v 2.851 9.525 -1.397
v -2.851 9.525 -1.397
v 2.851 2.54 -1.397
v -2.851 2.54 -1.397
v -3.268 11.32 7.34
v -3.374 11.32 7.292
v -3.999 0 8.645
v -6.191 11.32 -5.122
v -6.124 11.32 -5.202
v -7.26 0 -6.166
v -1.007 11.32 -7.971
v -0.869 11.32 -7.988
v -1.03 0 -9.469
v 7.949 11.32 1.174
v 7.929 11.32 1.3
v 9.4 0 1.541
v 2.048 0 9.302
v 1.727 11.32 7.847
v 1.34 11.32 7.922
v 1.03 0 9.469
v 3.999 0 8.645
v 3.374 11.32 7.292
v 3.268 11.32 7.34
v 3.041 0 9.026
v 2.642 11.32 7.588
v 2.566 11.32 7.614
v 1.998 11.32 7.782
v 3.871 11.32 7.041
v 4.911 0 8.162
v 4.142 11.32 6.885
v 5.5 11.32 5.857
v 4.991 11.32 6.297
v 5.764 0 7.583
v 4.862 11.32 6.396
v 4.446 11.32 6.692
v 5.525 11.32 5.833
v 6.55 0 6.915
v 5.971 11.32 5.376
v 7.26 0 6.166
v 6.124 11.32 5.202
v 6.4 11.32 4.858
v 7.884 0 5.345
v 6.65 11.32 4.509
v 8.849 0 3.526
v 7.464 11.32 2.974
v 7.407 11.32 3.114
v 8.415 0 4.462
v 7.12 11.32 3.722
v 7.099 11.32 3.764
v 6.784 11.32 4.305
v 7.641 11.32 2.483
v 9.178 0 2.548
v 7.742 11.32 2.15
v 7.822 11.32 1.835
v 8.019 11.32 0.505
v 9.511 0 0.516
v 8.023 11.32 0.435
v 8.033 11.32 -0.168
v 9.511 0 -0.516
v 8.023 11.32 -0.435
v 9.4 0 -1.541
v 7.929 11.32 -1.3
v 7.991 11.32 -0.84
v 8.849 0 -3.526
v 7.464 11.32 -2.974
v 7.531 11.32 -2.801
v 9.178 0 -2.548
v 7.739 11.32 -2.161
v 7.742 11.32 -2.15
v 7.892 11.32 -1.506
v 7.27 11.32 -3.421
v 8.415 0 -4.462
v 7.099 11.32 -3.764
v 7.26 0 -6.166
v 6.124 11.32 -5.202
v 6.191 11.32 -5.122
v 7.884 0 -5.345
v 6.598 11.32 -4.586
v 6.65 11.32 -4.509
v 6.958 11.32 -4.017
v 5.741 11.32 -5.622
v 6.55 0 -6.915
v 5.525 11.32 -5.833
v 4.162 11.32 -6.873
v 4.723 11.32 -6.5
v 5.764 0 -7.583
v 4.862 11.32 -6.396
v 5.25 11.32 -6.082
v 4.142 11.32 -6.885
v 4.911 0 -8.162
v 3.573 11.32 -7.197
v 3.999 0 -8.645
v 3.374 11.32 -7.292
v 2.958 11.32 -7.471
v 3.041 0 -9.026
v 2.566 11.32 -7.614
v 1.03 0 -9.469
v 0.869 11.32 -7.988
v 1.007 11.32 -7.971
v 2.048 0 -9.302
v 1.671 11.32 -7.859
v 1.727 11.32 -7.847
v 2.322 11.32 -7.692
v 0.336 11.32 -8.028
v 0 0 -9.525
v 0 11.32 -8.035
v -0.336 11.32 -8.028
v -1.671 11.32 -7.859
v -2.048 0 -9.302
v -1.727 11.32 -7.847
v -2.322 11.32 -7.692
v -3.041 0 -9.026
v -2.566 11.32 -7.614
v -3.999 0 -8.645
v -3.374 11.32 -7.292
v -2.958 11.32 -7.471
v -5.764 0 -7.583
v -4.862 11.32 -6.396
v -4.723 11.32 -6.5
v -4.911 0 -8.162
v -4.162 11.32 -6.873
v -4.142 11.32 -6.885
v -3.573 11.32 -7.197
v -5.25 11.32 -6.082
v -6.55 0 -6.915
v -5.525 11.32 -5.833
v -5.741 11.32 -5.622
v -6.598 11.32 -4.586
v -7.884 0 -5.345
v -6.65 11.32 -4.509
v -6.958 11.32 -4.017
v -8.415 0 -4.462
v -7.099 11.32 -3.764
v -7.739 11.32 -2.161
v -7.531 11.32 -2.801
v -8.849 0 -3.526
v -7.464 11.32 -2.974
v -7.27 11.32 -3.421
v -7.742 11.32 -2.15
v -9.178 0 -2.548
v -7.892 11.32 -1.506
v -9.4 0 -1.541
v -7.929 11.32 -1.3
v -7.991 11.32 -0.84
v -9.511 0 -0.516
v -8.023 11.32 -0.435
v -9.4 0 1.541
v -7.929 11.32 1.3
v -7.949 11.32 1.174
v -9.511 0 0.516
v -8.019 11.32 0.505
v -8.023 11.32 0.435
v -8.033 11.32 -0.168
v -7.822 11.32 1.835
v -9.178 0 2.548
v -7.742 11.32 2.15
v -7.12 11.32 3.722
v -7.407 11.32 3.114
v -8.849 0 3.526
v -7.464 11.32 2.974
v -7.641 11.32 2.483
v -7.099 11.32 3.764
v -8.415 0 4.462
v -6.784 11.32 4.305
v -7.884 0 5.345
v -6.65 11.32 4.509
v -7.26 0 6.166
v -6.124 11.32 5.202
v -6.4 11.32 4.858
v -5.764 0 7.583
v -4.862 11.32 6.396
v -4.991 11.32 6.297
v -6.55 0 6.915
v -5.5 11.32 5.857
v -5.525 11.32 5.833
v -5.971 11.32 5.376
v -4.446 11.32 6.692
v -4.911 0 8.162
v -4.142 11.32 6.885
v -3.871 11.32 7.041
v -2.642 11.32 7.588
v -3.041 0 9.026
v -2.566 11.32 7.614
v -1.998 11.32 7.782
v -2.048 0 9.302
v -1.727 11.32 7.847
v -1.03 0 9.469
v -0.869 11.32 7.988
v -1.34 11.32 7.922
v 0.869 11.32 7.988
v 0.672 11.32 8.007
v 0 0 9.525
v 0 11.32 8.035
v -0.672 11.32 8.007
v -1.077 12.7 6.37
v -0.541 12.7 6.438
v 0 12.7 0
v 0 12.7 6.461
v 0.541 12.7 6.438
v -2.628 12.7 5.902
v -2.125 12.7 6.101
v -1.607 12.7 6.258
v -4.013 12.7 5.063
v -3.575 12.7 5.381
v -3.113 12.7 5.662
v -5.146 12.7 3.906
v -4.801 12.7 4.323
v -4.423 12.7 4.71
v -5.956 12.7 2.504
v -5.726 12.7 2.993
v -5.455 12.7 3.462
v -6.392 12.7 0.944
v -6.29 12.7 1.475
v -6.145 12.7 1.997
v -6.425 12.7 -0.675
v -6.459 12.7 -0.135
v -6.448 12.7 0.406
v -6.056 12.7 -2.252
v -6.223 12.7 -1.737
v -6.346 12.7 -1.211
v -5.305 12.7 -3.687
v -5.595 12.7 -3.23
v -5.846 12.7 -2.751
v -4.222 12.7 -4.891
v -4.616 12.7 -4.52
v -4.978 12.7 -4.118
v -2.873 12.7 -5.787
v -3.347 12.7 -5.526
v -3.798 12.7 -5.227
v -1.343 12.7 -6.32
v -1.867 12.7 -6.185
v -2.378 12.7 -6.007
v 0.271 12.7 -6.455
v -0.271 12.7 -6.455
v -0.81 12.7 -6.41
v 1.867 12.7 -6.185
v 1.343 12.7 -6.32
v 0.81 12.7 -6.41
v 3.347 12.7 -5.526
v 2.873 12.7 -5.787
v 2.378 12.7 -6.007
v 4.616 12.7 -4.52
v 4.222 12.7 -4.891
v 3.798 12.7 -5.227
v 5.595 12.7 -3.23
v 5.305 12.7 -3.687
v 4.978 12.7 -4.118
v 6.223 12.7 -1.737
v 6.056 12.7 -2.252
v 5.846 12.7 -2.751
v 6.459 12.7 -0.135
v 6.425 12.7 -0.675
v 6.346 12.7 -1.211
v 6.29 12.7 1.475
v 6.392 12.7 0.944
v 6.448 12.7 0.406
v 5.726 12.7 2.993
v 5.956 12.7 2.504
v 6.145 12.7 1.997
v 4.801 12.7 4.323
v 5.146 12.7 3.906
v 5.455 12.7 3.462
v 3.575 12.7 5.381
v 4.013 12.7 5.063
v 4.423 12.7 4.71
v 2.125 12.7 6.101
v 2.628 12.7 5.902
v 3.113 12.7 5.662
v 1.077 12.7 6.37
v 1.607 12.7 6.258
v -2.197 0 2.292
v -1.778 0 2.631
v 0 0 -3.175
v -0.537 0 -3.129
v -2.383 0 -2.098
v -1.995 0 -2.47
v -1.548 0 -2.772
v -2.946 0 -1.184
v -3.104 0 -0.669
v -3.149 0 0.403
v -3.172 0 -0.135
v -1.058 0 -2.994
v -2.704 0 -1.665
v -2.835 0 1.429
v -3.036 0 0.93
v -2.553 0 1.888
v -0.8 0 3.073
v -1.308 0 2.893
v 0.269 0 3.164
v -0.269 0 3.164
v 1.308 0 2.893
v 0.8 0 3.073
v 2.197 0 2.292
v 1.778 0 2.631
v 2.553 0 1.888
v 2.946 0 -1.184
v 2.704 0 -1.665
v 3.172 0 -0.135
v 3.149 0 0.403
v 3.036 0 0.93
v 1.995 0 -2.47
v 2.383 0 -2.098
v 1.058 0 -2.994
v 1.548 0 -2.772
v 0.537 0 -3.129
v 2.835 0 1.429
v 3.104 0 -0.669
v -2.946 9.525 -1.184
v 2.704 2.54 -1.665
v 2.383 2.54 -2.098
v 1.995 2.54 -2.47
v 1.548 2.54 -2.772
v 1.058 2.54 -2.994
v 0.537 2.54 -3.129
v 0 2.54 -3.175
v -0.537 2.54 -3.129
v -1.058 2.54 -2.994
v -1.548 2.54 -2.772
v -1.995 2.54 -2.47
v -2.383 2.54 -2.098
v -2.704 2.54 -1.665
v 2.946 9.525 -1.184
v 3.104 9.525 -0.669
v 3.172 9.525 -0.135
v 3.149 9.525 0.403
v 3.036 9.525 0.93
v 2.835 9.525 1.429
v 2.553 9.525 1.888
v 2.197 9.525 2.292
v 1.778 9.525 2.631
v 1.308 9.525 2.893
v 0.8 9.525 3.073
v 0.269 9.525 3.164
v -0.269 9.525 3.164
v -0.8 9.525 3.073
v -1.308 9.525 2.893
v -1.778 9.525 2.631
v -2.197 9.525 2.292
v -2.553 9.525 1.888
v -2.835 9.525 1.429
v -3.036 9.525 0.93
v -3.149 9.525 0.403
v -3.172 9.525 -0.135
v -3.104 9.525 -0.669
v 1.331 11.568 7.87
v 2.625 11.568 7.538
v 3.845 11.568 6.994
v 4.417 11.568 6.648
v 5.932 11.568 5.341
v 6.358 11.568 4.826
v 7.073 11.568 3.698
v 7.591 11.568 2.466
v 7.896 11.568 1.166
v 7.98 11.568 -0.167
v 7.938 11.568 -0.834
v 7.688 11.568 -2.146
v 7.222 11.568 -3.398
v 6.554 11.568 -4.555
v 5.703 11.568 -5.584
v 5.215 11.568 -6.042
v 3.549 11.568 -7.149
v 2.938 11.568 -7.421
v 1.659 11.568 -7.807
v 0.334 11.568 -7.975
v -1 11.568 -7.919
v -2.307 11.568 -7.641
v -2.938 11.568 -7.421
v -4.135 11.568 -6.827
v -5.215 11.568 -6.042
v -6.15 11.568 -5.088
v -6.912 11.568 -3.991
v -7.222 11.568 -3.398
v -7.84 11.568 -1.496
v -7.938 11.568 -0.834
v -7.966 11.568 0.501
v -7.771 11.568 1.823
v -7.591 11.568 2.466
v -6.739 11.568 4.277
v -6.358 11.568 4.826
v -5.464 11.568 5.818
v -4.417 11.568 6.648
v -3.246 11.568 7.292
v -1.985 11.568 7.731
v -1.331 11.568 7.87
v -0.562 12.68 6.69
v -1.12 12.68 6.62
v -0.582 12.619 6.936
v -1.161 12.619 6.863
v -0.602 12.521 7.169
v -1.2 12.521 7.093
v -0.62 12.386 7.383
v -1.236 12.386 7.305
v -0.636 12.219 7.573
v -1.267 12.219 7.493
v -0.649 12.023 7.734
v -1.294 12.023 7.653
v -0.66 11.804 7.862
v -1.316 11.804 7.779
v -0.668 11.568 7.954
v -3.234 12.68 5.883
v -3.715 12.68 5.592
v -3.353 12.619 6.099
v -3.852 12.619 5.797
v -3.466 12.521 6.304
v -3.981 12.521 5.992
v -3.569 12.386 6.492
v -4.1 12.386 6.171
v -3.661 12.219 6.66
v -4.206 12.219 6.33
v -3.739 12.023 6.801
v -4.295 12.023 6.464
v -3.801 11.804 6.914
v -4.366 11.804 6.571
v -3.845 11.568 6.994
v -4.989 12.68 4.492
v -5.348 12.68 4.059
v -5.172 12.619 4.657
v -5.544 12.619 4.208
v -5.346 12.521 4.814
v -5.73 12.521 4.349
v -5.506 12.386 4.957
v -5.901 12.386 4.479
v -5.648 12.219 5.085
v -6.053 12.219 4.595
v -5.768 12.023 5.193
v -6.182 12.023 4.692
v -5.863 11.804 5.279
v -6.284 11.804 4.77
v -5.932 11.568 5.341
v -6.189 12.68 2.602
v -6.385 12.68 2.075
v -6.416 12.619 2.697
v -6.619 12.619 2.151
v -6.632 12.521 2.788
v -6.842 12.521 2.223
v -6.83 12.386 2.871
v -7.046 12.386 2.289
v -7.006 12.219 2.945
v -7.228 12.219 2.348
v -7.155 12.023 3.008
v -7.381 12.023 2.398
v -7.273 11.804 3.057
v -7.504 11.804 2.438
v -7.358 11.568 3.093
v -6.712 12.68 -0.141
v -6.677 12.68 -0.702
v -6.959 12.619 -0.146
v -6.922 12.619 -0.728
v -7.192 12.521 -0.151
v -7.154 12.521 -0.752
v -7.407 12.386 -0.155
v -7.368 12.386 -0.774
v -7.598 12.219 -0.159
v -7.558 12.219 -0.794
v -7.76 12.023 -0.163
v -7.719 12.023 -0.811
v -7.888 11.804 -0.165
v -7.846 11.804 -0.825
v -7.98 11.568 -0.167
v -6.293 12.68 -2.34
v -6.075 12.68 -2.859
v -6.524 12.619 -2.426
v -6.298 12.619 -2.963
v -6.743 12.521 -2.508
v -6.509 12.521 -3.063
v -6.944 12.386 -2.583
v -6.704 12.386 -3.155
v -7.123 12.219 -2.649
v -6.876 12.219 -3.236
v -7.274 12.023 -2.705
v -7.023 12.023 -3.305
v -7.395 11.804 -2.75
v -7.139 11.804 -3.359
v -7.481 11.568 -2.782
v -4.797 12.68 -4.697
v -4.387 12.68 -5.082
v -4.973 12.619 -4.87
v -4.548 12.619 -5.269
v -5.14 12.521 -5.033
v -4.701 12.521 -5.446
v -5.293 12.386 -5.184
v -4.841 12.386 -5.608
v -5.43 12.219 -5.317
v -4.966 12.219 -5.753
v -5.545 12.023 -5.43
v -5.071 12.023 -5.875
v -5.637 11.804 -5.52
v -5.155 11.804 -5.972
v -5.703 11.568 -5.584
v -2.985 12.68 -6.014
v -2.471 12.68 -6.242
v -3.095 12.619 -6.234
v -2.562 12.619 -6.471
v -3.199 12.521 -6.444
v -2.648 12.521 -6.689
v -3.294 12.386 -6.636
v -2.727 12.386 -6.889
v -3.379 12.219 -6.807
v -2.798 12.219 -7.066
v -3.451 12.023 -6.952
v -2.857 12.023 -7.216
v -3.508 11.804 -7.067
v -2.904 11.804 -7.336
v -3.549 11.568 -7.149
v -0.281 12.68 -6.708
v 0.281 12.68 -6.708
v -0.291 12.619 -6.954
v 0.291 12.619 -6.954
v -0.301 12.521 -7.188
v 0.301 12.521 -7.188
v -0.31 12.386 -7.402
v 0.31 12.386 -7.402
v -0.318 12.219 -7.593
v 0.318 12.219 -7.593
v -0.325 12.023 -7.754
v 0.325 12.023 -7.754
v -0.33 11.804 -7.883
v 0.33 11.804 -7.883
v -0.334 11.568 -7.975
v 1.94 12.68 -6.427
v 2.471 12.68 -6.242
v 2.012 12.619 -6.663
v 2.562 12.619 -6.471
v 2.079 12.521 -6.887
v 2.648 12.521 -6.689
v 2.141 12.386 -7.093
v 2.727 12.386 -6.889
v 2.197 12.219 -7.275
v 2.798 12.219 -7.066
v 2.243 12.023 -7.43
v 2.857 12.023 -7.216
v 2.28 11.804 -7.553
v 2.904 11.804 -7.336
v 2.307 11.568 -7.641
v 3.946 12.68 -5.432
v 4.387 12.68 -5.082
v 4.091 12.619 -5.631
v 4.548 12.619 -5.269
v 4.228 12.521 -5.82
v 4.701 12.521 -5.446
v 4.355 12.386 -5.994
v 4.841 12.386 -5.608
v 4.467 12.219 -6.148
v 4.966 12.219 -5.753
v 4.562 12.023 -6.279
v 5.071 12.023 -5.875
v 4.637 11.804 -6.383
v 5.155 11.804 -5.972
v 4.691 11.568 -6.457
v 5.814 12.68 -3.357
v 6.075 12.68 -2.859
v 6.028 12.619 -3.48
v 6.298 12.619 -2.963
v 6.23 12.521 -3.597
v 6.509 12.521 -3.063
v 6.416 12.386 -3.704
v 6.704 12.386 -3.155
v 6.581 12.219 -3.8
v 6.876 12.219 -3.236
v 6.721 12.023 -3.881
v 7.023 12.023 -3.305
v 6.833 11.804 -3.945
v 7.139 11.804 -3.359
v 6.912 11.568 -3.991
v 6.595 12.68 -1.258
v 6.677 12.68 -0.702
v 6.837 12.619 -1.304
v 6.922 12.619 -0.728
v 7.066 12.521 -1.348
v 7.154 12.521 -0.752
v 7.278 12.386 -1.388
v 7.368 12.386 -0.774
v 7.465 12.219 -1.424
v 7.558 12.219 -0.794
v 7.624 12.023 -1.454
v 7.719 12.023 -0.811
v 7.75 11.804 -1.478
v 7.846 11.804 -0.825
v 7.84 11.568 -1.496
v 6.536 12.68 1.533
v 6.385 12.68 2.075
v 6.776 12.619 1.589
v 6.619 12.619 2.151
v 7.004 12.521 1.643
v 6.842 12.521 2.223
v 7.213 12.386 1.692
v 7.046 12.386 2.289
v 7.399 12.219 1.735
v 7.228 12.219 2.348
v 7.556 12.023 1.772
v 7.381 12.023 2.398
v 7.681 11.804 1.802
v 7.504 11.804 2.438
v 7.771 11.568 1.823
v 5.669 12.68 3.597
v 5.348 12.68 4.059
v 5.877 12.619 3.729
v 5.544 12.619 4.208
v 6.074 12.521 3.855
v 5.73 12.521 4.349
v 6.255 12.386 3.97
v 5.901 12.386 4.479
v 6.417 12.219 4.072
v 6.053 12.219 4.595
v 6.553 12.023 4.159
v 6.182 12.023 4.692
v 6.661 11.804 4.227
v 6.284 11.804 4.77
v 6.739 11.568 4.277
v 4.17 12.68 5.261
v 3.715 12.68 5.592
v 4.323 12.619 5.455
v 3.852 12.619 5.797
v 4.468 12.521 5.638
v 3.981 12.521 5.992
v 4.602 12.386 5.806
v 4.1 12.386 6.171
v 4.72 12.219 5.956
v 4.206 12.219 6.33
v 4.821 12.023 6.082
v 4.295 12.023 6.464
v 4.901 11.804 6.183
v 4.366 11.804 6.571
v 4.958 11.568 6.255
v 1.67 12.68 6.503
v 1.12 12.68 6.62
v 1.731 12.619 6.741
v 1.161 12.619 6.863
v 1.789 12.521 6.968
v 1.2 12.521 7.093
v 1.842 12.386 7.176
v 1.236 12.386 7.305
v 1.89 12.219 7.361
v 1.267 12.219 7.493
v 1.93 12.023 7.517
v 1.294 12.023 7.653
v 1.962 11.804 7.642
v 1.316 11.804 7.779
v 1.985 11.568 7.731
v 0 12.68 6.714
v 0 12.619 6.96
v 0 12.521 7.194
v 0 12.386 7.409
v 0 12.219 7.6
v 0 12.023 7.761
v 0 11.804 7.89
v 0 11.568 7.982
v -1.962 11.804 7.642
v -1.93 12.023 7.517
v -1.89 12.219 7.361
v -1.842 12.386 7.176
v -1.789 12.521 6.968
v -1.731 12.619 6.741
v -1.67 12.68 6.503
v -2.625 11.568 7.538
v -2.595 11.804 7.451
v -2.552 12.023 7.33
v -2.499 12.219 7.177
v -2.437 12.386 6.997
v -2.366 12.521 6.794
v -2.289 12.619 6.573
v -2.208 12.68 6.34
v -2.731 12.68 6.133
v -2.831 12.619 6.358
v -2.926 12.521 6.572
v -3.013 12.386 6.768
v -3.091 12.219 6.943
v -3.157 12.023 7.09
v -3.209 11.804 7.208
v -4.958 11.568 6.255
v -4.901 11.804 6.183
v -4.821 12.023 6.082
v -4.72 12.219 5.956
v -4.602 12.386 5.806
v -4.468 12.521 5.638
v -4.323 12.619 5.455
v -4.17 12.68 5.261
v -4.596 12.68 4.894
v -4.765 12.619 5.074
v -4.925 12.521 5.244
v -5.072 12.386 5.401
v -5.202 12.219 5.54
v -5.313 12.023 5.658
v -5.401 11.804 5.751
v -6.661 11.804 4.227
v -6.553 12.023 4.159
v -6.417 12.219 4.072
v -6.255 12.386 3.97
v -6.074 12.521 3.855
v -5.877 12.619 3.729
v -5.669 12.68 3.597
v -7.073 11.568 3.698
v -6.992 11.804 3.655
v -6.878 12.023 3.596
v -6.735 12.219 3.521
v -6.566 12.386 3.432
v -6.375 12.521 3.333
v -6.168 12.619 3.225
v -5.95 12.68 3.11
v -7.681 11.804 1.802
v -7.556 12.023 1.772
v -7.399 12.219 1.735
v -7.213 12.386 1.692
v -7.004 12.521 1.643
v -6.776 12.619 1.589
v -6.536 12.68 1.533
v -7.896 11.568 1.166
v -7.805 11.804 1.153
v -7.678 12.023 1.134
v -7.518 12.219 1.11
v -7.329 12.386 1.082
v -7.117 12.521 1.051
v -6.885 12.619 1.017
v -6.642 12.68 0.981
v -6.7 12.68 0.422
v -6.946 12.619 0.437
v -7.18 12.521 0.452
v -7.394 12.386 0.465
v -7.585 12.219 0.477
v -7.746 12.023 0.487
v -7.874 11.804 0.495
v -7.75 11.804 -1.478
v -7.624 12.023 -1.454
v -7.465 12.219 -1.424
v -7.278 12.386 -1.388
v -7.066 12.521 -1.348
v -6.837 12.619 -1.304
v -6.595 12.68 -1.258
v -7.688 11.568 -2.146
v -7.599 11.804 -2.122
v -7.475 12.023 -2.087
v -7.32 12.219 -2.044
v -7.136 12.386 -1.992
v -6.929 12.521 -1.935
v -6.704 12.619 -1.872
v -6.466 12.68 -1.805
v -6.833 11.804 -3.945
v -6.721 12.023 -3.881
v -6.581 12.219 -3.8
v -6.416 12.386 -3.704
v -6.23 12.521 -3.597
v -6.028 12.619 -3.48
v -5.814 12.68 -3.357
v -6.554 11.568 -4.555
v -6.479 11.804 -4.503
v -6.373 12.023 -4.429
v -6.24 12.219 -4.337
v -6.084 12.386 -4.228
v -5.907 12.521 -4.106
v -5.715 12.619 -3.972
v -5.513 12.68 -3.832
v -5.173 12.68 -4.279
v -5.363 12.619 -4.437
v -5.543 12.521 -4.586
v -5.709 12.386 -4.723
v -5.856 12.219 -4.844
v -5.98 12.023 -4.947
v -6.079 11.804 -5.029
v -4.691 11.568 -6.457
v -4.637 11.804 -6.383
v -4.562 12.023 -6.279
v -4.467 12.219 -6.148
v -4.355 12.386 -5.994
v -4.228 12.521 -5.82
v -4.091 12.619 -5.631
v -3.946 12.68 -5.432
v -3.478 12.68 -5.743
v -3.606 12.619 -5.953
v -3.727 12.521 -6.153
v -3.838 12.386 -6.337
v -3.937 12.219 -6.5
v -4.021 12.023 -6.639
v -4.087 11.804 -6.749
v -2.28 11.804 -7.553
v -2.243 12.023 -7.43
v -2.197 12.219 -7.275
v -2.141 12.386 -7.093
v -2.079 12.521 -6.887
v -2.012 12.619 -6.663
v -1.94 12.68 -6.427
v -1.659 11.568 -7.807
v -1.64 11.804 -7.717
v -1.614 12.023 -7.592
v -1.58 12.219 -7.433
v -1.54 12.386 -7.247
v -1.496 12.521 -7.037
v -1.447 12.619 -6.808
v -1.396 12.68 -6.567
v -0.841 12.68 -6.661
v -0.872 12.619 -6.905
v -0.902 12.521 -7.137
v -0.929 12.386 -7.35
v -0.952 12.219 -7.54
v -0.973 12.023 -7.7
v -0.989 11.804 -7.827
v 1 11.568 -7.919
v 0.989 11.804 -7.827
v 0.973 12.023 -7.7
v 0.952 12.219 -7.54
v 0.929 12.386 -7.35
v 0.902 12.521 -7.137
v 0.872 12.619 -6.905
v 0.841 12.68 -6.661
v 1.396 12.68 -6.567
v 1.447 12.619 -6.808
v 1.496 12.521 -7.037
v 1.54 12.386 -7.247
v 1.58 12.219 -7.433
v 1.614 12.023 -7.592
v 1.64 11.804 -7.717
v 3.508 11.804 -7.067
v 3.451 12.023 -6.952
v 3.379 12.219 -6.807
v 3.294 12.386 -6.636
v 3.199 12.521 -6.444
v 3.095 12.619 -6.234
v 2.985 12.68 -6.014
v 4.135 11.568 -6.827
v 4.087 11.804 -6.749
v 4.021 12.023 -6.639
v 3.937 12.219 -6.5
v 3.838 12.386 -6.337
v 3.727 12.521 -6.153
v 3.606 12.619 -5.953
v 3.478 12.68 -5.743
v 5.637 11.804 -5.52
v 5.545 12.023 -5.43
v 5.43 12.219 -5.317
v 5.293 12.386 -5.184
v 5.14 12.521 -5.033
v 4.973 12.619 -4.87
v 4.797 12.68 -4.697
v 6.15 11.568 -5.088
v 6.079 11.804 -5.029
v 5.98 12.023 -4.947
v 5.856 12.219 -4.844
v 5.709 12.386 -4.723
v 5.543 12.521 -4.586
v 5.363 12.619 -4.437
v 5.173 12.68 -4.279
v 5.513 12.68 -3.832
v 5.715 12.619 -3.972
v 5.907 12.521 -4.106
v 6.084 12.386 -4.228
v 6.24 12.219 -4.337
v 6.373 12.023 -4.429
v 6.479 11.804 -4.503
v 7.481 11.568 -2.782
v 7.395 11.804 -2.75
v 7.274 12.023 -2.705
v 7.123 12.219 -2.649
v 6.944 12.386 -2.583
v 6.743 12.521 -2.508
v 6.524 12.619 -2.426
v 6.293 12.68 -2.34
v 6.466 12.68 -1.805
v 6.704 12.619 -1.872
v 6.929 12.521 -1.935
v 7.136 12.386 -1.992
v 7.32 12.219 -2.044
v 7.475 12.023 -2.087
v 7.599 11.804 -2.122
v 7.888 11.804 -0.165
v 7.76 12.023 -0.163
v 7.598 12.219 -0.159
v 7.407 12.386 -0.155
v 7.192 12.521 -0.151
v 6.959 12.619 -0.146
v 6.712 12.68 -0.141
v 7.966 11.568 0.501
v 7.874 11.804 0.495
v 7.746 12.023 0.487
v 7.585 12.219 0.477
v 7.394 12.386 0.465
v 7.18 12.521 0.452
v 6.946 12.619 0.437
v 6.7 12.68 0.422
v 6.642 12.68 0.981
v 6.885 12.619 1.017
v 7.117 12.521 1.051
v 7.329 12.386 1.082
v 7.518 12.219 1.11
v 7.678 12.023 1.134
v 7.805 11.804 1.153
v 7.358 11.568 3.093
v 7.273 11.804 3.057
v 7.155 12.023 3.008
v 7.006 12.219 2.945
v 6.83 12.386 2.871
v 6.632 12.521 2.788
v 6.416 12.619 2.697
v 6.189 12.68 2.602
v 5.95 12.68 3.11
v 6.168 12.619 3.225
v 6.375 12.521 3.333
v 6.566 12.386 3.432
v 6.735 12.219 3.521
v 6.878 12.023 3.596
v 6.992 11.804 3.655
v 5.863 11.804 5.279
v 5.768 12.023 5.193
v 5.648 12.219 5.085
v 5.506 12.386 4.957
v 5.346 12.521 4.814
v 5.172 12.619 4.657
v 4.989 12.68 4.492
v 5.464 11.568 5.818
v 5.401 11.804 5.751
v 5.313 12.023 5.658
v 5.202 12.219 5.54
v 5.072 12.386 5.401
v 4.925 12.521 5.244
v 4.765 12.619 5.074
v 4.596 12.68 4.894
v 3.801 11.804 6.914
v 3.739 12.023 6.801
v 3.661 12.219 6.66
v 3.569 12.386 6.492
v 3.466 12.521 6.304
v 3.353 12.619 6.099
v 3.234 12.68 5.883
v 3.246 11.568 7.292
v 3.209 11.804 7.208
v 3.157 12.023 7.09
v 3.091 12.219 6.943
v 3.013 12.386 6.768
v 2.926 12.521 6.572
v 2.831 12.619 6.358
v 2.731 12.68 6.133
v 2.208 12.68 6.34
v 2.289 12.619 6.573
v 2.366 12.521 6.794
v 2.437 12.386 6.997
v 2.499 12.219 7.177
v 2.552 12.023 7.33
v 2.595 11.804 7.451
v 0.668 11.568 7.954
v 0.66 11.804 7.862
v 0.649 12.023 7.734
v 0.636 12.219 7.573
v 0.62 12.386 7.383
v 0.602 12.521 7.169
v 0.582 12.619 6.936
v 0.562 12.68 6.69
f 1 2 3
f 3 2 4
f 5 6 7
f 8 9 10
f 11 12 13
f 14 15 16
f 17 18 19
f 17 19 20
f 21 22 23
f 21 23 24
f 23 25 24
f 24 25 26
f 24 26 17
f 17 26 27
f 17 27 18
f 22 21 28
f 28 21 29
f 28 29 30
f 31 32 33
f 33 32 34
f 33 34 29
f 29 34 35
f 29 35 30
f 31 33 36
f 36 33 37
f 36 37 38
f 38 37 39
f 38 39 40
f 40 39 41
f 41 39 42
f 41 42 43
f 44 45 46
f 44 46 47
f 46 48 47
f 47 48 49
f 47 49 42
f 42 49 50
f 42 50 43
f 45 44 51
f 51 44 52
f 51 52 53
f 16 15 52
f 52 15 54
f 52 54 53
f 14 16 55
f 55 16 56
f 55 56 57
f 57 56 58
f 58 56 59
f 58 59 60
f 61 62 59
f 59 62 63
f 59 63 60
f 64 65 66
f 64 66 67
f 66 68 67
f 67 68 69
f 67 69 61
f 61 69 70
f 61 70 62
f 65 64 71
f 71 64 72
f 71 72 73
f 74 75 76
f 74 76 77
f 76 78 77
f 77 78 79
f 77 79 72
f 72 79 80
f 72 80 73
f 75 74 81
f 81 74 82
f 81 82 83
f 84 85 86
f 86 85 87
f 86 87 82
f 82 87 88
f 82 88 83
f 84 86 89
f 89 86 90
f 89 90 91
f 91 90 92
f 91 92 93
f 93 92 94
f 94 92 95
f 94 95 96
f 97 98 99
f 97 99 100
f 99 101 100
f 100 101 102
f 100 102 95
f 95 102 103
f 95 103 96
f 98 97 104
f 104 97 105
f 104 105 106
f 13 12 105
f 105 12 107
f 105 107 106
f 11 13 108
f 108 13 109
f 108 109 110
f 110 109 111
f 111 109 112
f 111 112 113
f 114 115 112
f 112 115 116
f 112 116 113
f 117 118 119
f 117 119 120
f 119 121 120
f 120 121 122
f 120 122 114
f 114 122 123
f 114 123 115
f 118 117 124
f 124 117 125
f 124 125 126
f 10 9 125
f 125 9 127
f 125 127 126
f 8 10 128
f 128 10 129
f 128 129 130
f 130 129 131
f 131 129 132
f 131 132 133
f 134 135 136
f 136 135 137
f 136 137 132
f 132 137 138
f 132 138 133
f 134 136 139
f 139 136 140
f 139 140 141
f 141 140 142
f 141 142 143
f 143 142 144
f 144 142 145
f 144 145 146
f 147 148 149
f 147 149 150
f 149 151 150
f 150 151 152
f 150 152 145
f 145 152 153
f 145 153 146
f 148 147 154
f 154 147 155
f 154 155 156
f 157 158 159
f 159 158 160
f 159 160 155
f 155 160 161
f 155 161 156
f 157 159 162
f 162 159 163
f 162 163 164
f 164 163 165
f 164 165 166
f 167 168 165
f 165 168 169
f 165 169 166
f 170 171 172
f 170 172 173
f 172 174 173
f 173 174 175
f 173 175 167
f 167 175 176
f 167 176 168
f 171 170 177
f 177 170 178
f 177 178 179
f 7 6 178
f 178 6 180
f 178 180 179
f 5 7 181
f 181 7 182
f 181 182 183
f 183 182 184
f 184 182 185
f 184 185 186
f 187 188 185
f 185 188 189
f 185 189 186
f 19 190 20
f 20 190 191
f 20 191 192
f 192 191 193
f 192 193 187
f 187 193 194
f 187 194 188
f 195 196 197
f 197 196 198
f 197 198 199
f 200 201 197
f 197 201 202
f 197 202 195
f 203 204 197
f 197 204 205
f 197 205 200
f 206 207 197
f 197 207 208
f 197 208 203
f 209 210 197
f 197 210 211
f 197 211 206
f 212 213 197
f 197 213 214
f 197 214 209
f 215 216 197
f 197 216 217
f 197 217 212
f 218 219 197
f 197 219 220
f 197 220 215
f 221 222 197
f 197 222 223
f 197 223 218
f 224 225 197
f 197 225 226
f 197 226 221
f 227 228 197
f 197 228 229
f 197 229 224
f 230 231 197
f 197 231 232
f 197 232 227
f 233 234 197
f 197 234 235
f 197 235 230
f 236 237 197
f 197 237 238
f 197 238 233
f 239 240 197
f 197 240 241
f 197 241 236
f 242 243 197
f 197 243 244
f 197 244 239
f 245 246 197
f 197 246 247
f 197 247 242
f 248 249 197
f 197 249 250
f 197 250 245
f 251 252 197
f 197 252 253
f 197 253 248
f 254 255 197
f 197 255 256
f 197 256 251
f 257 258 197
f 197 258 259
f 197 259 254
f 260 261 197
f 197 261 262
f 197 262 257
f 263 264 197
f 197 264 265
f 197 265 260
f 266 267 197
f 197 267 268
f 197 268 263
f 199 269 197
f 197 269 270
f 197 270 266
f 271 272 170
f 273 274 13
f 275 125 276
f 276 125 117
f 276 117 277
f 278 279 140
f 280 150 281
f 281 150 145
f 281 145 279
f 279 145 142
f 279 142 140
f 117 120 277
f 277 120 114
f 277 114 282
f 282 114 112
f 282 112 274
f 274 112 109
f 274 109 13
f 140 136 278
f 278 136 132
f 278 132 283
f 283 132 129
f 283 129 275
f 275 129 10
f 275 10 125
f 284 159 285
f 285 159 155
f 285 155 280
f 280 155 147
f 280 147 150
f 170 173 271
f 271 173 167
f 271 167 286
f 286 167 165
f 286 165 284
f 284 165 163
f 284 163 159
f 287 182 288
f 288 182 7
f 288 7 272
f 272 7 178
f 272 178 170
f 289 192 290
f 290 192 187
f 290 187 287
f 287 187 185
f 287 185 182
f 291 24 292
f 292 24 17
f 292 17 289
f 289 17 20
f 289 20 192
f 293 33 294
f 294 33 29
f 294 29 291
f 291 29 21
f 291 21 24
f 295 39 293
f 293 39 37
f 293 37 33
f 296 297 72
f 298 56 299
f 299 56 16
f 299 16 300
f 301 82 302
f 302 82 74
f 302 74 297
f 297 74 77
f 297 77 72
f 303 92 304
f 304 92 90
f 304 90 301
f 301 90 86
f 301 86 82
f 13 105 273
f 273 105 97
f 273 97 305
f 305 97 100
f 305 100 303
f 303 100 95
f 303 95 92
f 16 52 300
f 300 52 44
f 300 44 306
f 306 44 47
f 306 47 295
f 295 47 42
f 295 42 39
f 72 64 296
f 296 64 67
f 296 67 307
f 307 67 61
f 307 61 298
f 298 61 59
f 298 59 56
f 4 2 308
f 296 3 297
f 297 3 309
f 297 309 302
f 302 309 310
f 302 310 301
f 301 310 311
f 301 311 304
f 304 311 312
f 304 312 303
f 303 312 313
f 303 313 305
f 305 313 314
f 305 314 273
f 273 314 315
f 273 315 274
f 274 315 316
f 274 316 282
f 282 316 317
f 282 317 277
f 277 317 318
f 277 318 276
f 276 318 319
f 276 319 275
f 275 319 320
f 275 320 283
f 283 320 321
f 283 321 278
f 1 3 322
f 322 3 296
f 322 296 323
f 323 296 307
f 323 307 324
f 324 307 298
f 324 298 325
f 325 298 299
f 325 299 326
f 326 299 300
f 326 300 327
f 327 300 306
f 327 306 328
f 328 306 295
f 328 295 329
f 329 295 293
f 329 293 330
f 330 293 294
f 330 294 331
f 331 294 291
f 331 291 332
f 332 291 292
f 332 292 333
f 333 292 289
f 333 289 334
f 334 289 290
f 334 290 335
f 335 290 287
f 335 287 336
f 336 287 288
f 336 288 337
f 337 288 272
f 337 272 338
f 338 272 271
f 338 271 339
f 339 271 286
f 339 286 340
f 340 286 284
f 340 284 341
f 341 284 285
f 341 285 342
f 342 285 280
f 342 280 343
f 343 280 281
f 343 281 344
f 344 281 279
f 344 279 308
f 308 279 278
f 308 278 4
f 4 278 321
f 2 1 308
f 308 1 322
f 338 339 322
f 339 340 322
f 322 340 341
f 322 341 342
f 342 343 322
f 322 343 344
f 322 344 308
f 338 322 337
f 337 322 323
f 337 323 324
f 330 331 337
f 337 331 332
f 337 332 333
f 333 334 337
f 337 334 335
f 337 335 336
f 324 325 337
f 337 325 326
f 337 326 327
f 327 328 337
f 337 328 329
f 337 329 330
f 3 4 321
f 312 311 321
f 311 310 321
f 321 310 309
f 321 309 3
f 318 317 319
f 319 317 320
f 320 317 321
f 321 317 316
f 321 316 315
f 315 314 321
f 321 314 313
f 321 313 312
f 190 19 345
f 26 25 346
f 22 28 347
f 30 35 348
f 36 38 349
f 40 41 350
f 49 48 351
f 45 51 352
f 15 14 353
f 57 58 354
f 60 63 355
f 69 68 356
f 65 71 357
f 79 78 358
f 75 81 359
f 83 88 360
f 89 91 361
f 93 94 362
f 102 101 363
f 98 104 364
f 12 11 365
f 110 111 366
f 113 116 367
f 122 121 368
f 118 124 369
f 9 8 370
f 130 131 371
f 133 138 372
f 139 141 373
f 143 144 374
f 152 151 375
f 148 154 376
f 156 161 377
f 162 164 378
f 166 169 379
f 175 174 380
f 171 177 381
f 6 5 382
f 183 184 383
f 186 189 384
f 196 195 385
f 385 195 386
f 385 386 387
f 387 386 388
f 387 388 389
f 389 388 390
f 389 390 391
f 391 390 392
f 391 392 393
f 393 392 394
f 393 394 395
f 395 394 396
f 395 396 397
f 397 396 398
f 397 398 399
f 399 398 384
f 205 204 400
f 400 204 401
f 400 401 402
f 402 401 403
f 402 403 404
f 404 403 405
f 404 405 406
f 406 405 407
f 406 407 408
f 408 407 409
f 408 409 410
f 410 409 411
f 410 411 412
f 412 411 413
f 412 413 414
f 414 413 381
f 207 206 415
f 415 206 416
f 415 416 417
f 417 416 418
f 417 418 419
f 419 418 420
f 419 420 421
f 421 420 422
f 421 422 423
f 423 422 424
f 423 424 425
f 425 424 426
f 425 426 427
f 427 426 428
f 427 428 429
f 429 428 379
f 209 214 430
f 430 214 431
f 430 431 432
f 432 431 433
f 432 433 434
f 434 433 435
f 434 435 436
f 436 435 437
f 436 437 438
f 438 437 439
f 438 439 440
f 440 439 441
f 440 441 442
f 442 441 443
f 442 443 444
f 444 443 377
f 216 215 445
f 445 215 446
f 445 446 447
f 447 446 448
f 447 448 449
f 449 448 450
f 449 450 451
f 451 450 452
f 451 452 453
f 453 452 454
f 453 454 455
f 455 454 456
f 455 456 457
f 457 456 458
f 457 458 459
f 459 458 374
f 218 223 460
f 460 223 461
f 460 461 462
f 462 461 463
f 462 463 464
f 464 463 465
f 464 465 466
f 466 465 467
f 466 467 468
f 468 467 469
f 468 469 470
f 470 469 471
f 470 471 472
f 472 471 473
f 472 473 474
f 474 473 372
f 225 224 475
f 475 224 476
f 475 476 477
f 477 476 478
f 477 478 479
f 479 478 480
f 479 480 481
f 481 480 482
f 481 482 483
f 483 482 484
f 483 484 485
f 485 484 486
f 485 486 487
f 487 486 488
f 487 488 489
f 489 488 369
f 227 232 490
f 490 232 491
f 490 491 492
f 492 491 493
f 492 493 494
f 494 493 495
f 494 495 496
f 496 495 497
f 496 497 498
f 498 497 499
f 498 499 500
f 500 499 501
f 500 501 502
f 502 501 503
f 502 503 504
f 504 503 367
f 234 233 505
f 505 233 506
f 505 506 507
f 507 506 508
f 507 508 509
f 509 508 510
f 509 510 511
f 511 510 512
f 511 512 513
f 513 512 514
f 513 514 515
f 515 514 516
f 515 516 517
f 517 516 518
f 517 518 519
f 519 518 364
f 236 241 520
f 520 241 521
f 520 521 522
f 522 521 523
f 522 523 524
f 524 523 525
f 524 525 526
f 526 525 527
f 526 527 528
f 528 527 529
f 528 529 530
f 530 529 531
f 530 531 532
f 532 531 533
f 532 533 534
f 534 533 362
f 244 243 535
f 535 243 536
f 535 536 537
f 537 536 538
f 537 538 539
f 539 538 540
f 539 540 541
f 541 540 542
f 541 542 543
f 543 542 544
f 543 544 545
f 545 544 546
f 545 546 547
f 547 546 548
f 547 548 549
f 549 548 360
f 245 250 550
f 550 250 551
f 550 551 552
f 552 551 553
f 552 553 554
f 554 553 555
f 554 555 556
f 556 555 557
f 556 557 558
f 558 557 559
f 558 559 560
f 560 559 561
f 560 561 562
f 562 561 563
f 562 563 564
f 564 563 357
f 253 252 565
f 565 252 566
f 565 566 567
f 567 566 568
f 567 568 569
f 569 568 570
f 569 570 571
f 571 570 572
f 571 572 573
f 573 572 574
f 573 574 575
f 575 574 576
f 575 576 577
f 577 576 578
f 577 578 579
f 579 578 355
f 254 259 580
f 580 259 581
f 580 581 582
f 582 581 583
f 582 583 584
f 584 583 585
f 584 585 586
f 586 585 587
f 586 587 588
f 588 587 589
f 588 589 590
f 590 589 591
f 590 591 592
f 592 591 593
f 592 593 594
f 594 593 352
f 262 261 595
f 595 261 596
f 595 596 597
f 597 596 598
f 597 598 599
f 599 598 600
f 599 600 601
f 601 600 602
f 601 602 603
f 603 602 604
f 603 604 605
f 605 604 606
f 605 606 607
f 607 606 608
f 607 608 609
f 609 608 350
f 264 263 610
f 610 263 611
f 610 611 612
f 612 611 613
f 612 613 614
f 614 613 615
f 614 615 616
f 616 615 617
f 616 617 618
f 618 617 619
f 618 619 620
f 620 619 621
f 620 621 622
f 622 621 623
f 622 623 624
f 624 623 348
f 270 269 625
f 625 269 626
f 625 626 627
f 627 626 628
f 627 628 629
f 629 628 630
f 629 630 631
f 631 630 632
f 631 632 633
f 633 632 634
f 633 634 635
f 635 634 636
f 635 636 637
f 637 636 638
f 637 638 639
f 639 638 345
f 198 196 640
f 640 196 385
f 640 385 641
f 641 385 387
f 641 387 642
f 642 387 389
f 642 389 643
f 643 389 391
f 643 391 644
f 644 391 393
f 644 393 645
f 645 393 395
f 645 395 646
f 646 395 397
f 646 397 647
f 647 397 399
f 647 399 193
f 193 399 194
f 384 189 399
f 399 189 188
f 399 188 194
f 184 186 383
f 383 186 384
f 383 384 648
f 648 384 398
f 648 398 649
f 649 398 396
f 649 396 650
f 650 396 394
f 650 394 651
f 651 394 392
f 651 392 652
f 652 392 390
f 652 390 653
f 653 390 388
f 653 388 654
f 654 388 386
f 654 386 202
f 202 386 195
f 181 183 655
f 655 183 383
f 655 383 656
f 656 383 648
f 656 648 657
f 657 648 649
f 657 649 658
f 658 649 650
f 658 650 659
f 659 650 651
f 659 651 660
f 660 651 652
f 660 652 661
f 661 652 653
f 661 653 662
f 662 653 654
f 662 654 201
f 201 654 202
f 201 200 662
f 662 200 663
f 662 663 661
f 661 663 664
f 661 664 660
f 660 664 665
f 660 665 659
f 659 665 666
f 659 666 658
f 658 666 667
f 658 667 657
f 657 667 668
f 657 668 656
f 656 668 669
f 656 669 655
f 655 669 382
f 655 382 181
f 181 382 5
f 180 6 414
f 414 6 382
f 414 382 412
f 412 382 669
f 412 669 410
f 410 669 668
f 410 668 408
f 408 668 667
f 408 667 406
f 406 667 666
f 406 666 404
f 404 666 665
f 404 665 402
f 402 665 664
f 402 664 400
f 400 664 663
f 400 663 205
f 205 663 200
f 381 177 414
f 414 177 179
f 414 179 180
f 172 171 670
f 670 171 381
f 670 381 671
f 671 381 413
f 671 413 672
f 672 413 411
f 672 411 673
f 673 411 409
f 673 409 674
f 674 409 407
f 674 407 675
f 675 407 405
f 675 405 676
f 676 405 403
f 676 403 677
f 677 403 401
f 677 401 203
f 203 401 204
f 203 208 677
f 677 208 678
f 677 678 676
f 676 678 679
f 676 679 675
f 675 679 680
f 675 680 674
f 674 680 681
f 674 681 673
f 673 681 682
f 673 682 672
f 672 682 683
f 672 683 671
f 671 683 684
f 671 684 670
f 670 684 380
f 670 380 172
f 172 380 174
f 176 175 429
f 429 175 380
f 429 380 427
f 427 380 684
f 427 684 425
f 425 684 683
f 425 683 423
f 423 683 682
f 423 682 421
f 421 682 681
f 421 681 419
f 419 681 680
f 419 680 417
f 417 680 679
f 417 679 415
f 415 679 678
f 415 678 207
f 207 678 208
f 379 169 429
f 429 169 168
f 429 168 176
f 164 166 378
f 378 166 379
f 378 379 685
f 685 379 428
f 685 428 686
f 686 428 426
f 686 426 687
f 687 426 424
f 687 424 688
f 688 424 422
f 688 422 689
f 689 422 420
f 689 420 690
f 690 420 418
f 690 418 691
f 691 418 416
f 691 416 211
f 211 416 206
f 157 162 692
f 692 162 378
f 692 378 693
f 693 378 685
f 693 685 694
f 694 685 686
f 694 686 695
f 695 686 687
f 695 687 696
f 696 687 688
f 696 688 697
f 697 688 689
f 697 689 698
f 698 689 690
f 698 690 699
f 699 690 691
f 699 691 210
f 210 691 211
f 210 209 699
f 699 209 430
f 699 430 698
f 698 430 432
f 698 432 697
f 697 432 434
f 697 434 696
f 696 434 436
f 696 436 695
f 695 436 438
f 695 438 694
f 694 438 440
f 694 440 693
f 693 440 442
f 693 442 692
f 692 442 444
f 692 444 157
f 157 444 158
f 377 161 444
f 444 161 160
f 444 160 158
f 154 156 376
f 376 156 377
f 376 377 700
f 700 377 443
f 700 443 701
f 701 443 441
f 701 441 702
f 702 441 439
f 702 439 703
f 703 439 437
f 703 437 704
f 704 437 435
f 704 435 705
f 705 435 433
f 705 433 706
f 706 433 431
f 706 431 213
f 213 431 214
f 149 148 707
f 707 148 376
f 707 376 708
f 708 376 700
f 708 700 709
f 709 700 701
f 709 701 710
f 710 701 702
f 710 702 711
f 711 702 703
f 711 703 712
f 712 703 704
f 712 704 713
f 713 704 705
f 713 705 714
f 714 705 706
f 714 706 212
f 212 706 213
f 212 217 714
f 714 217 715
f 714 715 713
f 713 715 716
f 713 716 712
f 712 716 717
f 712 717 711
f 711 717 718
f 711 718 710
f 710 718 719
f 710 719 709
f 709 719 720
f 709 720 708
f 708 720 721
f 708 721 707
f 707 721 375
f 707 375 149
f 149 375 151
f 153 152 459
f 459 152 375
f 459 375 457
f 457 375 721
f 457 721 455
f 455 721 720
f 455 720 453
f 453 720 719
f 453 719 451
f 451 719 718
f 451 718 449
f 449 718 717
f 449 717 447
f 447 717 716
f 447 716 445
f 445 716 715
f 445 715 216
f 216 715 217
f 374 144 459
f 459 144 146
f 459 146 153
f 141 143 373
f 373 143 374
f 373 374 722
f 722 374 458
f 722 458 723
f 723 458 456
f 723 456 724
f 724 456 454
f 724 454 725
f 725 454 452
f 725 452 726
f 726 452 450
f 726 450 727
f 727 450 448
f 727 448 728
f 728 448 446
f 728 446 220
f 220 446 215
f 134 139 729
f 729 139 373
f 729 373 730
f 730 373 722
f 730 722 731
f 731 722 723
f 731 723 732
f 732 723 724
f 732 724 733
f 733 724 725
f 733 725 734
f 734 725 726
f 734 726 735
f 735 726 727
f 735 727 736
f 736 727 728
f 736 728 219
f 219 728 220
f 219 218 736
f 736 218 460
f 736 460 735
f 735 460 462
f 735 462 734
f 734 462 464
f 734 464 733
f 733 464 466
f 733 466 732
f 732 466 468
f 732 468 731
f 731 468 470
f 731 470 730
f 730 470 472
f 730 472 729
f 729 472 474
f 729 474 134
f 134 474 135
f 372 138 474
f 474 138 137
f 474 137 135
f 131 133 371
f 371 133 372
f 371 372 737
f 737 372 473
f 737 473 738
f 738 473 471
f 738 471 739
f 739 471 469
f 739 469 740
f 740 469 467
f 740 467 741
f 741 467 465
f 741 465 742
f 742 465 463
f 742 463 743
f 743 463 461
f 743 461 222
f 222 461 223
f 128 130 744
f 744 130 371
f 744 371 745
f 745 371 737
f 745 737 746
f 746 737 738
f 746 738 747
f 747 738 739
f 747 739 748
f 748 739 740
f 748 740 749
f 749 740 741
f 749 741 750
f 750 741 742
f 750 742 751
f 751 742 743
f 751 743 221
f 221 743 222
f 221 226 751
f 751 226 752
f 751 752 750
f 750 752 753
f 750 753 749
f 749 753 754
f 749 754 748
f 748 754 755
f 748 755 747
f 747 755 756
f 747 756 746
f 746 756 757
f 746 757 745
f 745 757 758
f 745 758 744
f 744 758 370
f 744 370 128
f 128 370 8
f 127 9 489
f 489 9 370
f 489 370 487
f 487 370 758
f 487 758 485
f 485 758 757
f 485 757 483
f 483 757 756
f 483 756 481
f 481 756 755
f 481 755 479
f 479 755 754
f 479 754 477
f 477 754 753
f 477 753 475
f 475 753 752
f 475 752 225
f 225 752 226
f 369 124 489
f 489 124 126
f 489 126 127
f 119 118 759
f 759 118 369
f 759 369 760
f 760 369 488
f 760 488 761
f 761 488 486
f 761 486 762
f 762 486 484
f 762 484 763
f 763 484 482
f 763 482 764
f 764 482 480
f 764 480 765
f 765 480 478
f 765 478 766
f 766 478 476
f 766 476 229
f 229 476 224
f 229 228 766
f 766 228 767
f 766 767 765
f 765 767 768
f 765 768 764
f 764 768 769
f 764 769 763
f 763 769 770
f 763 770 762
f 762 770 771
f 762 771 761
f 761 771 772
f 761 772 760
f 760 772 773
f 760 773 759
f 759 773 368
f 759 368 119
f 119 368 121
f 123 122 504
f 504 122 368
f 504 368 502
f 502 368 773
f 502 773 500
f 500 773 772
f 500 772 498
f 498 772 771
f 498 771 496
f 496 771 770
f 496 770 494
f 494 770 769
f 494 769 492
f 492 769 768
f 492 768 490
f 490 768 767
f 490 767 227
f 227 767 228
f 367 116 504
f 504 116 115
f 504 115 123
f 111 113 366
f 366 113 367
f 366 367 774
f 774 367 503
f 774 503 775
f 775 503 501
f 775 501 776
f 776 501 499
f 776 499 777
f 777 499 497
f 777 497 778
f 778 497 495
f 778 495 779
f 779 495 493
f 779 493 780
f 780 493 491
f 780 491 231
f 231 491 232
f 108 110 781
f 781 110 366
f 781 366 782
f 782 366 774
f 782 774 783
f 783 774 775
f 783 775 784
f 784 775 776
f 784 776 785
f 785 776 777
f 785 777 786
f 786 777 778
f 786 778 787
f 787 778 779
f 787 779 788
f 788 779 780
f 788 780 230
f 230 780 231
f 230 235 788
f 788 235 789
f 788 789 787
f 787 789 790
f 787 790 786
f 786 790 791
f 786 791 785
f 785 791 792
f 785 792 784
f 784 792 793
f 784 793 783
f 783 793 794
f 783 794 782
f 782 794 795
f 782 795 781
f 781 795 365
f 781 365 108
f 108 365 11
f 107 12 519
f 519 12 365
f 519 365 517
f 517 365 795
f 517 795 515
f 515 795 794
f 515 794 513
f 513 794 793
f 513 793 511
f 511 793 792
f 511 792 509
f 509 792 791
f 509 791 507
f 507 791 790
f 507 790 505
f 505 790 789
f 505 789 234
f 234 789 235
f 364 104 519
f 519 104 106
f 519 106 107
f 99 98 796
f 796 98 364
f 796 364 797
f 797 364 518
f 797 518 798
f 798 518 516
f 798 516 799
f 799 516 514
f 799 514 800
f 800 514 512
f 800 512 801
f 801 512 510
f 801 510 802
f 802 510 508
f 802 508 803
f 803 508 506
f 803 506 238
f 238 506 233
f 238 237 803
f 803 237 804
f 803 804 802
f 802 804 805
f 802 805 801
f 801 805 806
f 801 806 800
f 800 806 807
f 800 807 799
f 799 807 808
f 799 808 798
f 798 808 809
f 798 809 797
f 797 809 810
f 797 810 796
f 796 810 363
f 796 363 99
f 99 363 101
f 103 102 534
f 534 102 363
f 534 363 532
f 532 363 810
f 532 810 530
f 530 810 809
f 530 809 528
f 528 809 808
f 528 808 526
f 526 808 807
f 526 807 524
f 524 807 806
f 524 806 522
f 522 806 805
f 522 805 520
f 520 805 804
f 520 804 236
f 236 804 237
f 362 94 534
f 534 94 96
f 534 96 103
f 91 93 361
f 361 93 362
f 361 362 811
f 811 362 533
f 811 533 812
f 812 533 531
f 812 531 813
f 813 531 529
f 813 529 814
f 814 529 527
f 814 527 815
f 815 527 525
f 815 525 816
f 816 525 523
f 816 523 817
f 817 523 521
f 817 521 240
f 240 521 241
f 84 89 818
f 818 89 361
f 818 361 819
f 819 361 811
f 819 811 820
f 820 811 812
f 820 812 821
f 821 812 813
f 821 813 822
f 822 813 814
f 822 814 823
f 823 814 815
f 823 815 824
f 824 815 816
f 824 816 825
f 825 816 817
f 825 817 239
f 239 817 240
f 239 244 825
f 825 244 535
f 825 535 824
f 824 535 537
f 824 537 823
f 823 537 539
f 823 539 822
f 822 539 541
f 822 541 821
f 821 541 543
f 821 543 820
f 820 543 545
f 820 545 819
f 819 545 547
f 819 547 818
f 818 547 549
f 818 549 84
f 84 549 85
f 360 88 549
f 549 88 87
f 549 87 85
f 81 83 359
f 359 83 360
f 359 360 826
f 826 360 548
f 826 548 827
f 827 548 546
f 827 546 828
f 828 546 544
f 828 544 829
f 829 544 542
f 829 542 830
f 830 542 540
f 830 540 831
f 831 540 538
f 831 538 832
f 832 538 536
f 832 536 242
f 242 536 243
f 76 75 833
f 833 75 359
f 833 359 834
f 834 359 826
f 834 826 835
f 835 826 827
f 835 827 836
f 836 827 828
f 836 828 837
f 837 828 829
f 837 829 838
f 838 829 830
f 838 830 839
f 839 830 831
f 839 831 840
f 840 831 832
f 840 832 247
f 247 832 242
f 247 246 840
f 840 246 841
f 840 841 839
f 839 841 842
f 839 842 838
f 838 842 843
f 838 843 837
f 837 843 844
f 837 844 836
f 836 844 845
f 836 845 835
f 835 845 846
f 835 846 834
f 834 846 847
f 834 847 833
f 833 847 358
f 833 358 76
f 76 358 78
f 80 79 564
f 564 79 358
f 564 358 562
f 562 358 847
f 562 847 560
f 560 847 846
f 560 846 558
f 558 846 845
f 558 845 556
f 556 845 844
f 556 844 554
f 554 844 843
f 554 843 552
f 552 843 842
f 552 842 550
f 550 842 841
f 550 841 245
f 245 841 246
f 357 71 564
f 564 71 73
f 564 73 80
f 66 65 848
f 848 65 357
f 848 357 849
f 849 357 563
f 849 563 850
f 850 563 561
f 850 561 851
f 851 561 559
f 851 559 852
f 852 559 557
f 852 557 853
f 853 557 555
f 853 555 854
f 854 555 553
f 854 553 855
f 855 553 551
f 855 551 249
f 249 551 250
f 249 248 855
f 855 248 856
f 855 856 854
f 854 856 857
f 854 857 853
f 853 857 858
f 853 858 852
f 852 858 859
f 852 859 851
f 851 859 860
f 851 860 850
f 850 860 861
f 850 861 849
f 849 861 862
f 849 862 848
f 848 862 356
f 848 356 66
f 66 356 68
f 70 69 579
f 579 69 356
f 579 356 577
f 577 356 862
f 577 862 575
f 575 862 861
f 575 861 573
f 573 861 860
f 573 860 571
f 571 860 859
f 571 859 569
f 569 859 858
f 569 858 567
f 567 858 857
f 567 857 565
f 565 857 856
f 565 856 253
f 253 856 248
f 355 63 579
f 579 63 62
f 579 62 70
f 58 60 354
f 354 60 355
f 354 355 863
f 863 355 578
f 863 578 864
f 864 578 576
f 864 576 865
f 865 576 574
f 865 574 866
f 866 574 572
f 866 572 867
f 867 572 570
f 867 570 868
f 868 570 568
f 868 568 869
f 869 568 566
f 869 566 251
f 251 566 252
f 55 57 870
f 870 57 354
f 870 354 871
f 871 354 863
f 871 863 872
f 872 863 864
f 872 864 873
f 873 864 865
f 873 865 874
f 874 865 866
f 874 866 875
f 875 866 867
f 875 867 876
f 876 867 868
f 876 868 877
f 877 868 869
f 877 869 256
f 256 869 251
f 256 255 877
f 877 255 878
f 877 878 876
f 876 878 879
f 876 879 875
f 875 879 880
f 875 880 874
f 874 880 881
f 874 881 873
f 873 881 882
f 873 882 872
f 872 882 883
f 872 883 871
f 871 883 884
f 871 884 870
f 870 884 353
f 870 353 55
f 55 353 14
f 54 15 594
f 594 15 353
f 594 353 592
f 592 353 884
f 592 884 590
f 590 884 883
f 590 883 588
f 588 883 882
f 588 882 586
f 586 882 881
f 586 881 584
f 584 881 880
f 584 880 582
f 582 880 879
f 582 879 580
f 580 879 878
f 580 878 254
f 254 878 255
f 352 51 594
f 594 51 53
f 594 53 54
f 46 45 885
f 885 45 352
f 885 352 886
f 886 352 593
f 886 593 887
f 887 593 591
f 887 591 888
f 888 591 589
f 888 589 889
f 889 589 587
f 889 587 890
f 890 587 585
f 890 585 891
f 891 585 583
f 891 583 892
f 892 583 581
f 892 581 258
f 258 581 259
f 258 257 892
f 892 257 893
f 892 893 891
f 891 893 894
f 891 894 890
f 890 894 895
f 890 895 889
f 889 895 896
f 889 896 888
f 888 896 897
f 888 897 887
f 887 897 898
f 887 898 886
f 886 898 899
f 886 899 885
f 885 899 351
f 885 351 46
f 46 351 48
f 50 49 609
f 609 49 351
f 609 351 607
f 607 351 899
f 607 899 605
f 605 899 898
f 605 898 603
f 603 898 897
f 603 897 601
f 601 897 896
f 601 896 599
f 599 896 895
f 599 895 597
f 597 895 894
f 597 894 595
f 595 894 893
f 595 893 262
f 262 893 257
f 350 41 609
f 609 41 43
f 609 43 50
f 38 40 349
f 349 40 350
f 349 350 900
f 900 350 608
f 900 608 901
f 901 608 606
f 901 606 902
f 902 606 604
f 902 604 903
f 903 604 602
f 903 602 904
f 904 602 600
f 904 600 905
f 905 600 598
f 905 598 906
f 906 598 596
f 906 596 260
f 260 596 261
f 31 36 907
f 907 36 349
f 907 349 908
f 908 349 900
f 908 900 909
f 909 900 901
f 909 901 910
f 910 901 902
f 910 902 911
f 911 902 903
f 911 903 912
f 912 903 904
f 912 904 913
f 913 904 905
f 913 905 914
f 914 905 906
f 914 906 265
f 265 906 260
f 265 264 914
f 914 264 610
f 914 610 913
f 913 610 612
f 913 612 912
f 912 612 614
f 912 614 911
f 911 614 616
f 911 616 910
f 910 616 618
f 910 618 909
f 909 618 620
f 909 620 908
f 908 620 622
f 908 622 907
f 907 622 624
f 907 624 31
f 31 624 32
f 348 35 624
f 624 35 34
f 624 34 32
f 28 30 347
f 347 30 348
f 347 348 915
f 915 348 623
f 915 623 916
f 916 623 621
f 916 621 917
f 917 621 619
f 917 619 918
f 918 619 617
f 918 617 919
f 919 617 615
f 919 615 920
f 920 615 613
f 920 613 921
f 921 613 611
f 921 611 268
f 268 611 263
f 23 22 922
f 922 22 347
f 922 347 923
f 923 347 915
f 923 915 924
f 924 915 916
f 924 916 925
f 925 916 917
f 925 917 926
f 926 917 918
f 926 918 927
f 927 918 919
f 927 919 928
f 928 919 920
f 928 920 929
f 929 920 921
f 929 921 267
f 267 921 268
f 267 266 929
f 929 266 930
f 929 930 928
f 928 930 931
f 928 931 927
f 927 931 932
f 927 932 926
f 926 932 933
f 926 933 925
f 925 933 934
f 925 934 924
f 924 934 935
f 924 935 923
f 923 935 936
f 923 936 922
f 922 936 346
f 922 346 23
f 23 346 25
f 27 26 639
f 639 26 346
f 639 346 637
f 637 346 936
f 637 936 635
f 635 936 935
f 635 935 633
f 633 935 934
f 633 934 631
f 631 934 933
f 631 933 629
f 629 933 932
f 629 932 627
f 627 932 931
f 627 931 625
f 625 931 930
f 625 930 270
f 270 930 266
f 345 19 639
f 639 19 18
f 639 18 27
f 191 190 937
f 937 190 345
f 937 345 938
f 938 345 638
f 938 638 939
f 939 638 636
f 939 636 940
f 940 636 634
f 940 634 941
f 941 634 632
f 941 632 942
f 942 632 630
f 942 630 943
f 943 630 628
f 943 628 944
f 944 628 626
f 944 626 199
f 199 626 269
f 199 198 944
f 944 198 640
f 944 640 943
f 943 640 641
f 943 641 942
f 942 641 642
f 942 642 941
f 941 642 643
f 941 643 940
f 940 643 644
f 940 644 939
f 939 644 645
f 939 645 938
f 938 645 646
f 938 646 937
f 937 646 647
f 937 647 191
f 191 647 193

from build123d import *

# Parameters (mm, degrees)
SKETCH1_R           = 9.525
BOSS_EXTRUDE1_DEPTH = 12.7
BOSS_EXTRUDE1_TAPER = 7.5
CUT_EXTRUDE1_DEPTH  = 9.525
SKETCH3_R           = 3.175
CUT_EXTRUDE2_DEPTH  = 2.54
FILLET3_R           = 1.5875


with BuildPart() as part:
    # Sketch1 → Boss-Extrude1 (new body)
    with BuildSketch(Plane(origin=(0, 0, 0), x_dir=(1, 0, 0), z_dir=(0, 1, 0))):
        Circle(SKETCH1_R)
    extrude(amount=BOSS_EXTRUDE1_DEPTH, taper=BOSS_EXTRUDE1_TAPER)

    # Sketch2 → Cut-Extrude1 (cut)
    with BuildSketch(Plane.XZ):
        with BuildLine():
            Line((-2.851142929, -1.397), (2.851142929, -1.397))
            ThreePointArc((2.851142929, -1.397), (0, 3.175), (-2.851142929, -1.397))
        make_face()
    extrude(amount=-CUT_EXTRUDE1_DEPTH, mode=Mode.SUBTRACT)

    # Sketch3 → Cut-Extrude2 (cut)
    with BuildSketch(Plane.XZ):
        with Locations(Location((0, 0, 0), (0, 0, 270))):
            Circle(SKETCH3_R)
    extrude(amount=-CUT_EXTRUDE2_DEPTH, mode=Mode.SUBTRACT)

    # Fillet3
    fillet3_edges = [part.edges().sort_by_distance(p)[0] for p in [
        (-7.853013281, 12.7, 0),
    ]]
    fillet(fillet3_edges, radius=FILLET3_R)


solid = part.part
